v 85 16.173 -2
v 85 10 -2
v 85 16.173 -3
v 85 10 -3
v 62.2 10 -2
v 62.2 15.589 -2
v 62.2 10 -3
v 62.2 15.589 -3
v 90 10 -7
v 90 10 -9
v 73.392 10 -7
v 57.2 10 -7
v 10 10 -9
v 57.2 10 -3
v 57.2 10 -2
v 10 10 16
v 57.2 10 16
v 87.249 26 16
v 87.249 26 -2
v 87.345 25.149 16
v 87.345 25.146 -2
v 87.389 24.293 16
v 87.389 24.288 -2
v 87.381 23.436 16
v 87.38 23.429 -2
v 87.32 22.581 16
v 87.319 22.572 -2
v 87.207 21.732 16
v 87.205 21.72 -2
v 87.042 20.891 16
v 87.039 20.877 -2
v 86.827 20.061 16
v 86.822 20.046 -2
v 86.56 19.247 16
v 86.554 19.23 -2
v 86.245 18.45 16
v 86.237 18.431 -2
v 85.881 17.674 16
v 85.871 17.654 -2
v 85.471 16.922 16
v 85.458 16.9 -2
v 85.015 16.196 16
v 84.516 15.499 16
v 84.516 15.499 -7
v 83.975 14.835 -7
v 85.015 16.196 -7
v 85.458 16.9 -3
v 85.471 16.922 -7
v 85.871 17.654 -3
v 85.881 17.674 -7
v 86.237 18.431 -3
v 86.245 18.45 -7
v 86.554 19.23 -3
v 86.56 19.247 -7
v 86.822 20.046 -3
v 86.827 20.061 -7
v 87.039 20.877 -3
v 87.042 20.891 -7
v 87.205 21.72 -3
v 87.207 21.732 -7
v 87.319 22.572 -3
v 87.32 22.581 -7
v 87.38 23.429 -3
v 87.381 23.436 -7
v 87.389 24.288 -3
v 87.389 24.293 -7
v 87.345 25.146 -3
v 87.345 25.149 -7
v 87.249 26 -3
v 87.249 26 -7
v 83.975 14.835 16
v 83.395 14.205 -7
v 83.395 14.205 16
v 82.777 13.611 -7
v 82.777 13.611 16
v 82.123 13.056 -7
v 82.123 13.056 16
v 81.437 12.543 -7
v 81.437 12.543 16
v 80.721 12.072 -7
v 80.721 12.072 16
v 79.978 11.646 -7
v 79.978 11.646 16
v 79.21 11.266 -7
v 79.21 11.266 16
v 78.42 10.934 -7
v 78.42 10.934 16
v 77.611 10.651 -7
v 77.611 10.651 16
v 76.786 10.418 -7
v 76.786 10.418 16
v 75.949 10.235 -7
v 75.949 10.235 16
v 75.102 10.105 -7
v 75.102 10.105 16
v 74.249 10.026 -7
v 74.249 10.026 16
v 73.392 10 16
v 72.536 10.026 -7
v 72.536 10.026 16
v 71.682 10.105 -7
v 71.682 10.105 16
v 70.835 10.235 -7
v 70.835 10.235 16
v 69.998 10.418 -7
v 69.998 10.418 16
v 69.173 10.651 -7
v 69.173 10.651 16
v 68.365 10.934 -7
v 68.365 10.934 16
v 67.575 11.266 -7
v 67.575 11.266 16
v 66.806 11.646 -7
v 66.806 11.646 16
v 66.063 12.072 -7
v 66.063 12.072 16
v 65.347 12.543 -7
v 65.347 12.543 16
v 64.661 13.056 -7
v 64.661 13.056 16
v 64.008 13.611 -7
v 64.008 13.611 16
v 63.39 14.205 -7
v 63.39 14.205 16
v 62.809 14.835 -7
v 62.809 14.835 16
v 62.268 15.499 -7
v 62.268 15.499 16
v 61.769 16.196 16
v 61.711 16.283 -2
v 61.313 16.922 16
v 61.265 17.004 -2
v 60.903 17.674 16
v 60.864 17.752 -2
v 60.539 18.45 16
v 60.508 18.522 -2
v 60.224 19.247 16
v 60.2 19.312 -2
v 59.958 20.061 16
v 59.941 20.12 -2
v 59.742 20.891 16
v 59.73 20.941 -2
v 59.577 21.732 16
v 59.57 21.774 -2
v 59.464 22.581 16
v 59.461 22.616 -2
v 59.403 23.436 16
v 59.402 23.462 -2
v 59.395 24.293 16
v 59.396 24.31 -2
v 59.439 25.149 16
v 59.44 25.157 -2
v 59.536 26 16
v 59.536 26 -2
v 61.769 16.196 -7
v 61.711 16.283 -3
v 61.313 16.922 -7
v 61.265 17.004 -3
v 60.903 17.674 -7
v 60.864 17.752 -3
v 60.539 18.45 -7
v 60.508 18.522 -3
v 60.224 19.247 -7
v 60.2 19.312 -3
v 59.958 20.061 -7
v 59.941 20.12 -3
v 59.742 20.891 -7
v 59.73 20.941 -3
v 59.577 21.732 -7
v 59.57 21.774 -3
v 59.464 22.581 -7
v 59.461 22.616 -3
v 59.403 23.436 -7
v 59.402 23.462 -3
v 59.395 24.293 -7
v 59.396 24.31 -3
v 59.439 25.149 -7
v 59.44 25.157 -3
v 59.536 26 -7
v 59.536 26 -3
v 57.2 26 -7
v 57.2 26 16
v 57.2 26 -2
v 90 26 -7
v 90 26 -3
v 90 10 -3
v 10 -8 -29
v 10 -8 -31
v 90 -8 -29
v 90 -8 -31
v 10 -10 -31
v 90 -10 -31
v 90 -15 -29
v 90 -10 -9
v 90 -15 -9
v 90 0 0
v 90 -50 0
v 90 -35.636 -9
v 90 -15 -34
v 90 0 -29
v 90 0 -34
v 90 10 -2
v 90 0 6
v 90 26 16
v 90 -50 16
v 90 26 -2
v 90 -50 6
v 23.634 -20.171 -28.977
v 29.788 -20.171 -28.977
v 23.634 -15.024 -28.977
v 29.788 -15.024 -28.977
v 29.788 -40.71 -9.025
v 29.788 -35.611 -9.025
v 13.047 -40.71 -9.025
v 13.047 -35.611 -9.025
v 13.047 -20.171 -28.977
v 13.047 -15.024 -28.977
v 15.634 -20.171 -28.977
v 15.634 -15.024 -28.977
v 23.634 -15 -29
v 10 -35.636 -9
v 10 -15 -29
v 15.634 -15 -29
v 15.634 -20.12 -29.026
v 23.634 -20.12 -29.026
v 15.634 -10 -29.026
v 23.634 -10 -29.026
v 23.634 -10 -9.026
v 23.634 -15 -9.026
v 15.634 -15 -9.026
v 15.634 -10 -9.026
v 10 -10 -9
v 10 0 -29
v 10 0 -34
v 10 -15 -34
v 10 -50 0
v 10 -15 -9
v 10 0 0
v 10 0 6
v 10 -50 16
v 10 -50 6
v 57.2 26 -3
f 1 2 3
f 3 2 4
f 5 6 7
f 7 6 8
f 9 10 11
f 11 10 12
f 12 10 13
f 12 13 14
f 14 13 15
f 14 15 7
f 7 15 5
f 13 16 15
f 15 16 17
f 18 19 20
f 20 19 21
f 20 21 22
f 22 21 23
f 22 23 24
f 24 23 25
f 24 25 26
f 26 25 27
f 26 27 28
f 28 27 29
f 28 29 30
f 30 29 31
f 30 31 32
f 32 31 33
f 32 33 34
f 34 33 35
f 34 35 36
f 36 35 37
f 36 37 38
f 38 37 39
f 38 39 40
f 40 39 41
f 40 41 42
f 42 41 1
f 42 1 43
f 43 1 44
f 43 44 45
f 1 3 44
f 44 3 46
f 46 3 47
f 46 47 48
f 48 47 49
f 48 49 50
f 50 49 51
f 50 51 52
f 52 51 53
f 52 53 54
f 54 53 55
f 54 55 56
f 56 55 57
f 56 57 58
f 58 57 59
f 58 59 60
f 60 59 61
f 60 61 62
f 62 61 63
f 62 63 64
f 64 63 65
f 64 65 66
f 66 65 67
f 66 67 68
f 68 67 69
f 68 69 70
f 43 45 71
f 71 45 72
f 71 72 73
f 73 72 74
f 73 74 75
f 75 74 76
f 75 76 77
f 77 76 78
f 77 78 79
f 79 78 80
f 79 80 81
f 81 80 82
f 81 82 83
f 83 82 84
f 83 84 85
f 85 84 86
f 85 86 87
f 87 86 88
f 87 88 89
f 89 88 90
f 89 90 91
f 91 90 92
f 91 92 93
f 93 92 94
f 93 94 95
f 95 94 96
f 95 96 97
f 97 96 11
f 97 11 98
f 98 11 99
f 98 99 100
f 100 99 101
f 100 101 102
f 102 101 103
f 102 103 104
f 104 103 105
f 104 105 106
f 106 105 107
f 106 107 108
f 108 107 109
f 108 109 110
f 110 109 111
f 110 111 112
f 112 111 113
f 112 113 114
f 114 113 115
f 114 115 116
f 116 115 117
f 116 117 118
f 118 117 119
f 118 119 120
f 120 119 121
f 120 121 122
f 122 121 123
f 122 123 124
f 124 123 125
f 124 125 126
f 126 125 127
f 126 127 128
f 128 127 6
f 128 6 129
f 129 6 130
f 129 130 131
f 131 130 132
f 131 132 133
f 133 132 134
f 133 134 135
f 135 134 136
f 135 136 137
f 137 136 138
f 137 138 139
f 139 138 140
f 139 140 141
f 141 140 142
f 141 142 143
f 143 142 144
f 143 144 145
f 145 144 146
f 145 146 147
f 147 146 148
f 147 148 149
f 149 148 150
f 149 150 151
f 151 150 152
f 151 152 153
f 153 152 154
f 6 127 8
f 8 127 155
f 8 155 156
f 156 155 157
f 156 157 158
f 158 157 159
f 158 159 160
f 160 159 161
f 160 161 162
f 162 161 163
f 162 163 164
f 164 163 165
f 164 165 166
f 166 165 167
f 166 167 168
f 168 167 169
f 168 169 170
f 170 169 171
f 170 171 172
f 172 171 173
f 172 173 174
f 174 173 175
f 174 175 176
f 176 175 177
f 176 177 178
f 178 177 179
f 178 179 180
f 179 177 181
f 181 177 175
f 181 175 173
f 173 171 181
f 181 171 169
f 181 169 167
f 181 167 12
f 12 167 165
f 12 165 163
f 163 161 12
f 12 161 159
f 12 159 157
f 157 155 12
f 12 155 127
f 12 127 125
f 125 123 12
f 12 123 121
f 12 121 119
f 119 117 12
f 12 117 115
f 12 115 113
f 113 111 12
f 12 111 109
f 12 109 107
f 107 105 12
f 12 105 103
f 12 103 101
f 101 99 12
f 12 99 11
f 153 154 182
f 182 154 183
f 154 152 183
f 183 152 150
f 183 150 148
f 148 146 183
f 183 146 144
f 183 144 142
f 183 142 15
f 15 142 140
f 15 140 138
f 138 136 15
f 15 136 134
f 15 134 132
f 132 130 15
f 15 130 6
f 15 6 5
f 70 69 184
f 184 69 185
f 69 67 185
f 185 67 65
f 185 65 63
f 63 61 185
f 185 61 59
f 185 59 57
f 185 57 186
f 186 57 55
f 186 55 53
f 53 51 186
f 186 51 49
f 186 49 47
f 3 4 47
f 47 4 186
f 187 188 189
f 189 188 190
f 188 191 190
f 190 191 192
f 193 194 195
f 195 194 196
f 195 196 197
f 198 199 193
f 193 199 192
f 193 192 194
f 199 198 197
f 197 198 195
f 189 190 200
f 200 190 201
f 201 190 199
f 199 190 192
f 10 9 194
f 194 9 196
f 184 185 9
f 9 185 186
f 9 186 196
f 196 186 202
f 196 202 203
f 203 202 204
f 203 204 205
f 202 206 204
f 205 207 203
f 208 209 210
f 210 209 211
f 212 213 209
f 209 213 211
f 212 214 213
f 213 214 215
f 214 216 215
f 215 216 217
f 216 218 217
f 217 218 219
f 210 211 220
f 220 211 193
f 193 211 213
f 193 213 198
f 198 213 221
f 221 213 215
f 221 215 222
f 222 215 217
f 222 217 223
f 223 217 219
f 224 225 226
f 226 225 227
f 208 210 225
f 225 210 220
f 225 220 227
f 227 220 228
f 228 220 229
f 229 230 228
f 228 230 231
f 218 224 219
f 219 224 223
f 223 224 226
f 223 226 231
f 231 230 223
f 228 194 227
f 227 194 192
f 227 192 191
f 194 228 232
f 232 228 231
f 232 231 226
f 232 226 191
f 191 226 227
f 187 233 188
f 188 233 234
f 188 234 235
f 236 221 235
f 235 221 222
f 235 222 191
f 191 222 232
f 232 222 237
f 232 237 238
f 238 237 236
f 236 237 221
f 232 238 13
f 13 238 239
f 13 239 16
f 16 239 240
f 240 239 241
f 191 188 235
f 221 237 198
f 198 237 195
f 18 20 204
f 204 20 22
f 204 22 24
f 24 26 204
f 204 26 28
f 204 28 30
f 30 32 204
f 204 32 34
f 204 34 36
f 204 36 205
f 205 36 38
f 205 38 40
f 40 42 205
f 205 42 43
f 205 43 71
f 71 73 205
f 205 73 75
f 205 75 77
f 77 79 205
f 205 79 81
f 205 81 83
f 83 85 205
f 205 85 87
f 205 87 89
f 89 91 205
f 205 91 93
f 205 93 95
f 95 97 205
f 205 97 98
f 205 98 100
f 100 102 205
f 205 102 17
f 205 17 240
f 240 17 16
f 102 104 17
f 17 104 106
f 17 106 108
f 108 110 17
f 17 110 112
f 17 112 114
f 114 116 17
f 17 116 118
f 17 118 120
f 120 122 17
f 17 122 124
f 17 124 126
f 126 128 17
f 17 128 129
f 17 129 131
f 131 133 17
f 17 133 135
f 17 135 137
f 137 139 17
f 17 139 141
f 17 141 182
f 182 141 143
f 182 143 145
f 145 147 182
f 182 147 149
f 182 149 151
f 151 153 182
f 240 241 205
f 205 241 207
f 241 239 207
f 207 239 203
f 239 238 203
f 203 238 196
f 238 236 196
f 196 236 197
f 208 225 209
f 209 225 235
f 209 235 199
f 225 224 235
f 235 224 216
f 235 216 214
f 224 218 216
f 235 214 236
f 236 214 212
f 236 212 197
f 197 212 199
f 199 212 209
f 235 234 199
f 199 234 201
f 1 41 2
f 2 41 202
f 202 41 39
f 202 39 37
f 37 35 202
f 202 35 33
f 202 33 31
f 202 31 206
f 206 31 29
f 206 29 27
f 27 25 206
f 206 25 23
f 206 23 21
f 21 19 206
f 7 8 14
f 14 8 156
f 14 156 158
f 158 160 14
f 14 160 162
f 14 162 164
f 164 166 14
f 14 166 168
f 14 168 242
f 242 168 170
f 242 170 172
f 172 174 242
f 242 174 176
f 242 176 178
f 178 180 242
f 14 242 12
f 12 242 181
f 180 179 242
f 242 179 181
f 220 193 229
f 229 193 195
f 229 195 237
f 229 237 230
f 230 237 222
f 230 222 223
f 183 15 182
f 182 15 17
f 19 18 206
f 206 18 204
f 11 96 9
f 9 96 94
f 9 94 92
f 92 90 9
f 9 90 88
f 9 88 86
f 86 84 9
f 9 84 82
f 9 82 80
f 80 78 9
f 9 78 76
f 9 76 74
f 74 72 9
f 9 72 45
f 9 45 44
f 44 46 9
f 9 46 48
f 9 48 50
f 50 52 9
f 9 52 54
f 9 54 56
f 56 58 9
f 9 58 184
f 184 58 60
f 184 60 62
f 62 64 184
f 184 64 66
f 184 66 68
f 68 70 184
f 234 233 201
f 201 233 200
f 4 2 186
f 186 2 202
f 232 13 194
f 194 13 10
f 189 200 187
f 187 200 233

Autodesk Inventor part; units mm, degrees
ref_plane "YZ Plane" through (0, 0, 0) normal (1, 0, 0) x (0, 1, 0)
ref_plane "XZ Plane" through (0, 0, 0) normal (0, 1, 0) x (-1, 0, 0)
ref_plane "XY Plane" through (0, 0, 0) normal (0, 0, 1) x (1, 0, 0)
sketch "Base" plane through (0, 0, 0) normal (1, 0, 0) x (0, 1, 0)
  line L0 (0, 0) -> (0, 6)
  line L1 (0, 6) -> (-50, 6)
  line L2 (-50, 6) -> (-50, 16)
  line L3 (-50, 16) -> (10, 16)
  line L4 (10, -9) -> (-10, -9)
  line L5 (-10, -9) -> (-10, -29)
  line L6 (-10, -29) -> (0, -29)
  line L7 (0, -29) -> (0, -34)
  line L8 (0, -34) -> (-15, -34)
  line L9 (-15, -34) -> (-50, 0)
  line L10 (-50, 0) -> (0, 0)
  line L11 (10, 16) -> (10, -9)
  dimension "d0" = 6
  dimension "d1" = 50
  dimension "d2" = 10
  dimension "d3" = 60
  dimension "d4" = 25
  dimension "d5" = 20
  dimension "d6" = 20
  dimension "d7" = 10
  dimension "d8" = 5
  dimension "d9" = 15
sketch "Mount" plane through (0, 0, 0) normal (1, 0, 0) x (0, 1, 0)
  line L0 (10, 16) -> (26, 16)
  line L1 (26, 16) -> (26, -7)
  line L2 (26, -7) -> (10, -7)
  line L3 (10, -7) -> (10, 16)
  point P0 (0, 0)
  dimension "d13" = 16
  dimension "d14" = 23
extrude "Extrusion1" add sketch "Base" along normal blind 90
extrude "Extrusion2" add sketch "Mount" along normal blind 90
sketch "Sketch4" plane through (0, 10, -7) normal (0, 0, -1) x (-1, 0, 0)
  line L0 (0, 0) -> (0, 16) projected
  line L1 (0, 16) -> (-90, 16) projected
  line L2 (-90, 0) -> (-90, 16) projected
  line L3 (0, 0) -> (-90, 0) projected
  line L4 (-90, 17.3769) -> (-85, 17.3769)
  line L5 (-85, 17.3769) -> (-85, 0)
  line L6 (0, 0) -> (-90, 0) projected
  line L7 (-85, 0) -> (-62.2, 0)
  line L8 (-62.2, 0) -> (-62.2, 17.3769)
  line L9 (-62.2, 17.3769) -> (-57.2, 17.3769)
  line L10 (-57.2, 17.3769) -> (-57.2, 0)
  line L11 (-90, 17.3769) -> (-90, 25.7938)
  line L12 (-90, 25.7938) -> (16.0885, 26.6461)
  line L13 (16.0885, 26.6461) -> (17.0474, 0)
  line L14 (17.0474, 0) -> (-57.2, 0)
  point P0 (0, -10)
  dimension "d19" = 5
  dimension "d20" = 22.8
  dimension "d21" = 5
extrude "Extrusion3" cut sketch "Sketch4" against normal blind 90 contours L3 L10 L1 L0 | L0 L1 L10 L9 L8 L5 L4 L11 L12 L13 L14 | L3 L5 L1 L8
sketch "Sketch7" plane through (90, 0, 0) normal (1, 0, 0) x (0, 0, -1)
  line L0 (29, 0) -> (29, -10) projected
  line L1 (29, -10) -> (9, -10) projected
  line L2 (9, -10) -> (9, 10) projected
  line L3 (9, 10) -> (7, 10) projected
  line L4 (7, 10) -> (7, 26) projected
  line L5 (7, 26) -> (-16, 26) projected
  line L6 (-16, 26) -> (-16, -50) projected
  line L7 (-16, -50) -> (-6, -50) projected
  line L8 (-6, -50) -> (-6, 0) projected
  line L9 (-6, 0) -> (0, 0) projected
  line L10 (0, 0) -> (0, -50) projected
  line L11 (0, -50) -> (34, -15) projected
  line L12 (34, -15) -> (34, 0) projected
  line L13 (34, 0) -> (29, 0) projected
  line L14 (9, -15) -> (29, -15)
  line L15 (29, -15) -> (9, -35.6361)
  line L16 (9, -35.6361) -> (9, -15)
extrude "Extrusion5" cut sketch "Sketch7" against normal blind 90 contours L14 L15 L16
sketch "Sketch8" plane through (90, 0, 0) normal (1, 0, 0) x (0, 0, -1)
  line L0 (29, -15) -> (9, -35.6361) projected
  line L1 (9, -35.6361) -> (9, -15) projected
  line L2 (9, -15) -> (29, -15) projected
  line L3 (29, 0) -> (29, -10) projected
  line L4 (29, -10) -> (9, -10) projected
  line L5 (9, -10) -> (9, 10) projected
  line L6 (9, 10) -> (7, 10) projected
  line L7 (7, 10) -> (7, 26) projected
  line L8 (7, 26) -> (-16, 26) projected
  line L9 (-16, 26) -> (-16, -50) projected
  line L10 (-16, -50) -> (-6, -50) projected
  line L11 (-6, -50) -> (-6, 0) projected
  line L12 (-6, 0) -> (0, 0) projected
  line L13 (0, 0) -> (0, -50) projected
  line L14 (0, -50) -> (34, -15) projected
  line L15 (34, -15) -> (34, 0) projected
  line L16 (34, 0) -> (29, 0) projected
  line L17 (2, 10) -> (3, 10)
  line L18 (2, 10) -> (2, 28)
  line L19 (2, 28) -> (3, 28)
  line L20 (3, 28) -> (3, 10)
  point P0 (-16, 10)
  dimension "d39" = 18
  dimension "d40" = 1
  dimension "d69" = 18
extrude "Extrusion6" cut sketch "Sketch8" against normal blind 90 contours L20 L17 L18 L8 | L8 L18 L19 L20
sketch "Sketch9" plane through (0, -15, -34) normal (0, 0, -1) x (-1, 0, 0)
  line L0 (0, -35) -> (-90, -35) projected
  line L1 (0, -35) -> (-10, -35)
  line L2 (-10, -35) -> (-10, 26.7876)
  line L3 (-10, 26.7876) -> (0, 26.7876)
  line L4 (0, 26.7876) -> (0, -35)
  point P0 (0, 15)
  dimension "d44" = 10
extrude "Extrusion7" cut sketch "Sketch9" against normal blind 90
sketch "Sketch10" plane through (90, -10, -9) normal (0, 1, 0) x (1, 0, 0)
  line L0 (-74.3662, 20.0264) -> (-66.3662, 20.0264)
  line L1 (-66.3662, 20.0264) -> (-66.3662, 0.0264)
  line L2 (-66.3662, 0.0264) -> (-74.3662, 0.0264)
  line L3 (-74.3662, 0.0264) -> (-74.3662, 20.0264)
  point P0 (-90, -9)
  dimension "d47" = 8
  dimension "d58" = 20
extrude "Extrusion8" cut sketch "Sketch10" against normal blind 90
sketch "Sketch11" plane through (90, -50, 6) normal (0, -1, 0) x (1, 0, 0)
  line L0 (-74.3662, -35.0264) -> (-74.3662, -15.0264) projected
  line L1 (-74.3662, -15.0264) -> (-66.3662, -15.0264) projected
  line L2 (-66.3662, -15.0264) -> (-66.3662, -35.0264) projected
  line L3 (-66.3662, -35.0264) -> (-74.3662, -35.0264) projected
  line L4 (-80, -6) -> (-80, -40) projected
  line L5 (-80, -40) -> (0, -40) projected
  line L6 (0, -6) -> (0, -40) projected
  line L7 (-80, -6) -> (0, -6) projected
  line L8 (-60.2122, -34.9767) -> (-76.9534, -34.9767)
  line L9 (-76.9534, -34.9767) -> (-76.9534, -15.0247)
  line L10 (-76.9534, -15.0247) -> (-60.2122, -15.0247)
  line L11 (-60.2122, -15.0247) -> (-60.2122, -34.9767)
  point P0 (-90, -6)
extrude "Extrusion9" cut sketch "Sketch11" against normal blind 35 contours L8 L9 L10 L0 | L2 L10 L11 L8
sketch "Sketch12" plane through (90, 10, -7) normal (0, 0, -1) x (-1, 0, 0)
  line L0 (5, 0) -> (5, 16) projected
  line L1 (5, 16) -> (0, 16) projected
  line L2 (0, 0) -> (0, 16) projected
  line L3 (5, 0) -> (0, 0) projected
  line L4 (27.8, 16) -> (27.8, 0) projected
  line L5 (32.8, 0) -> (27.8, 0) projected
  line L6 (32.8, 0) -> (32.8, 16) projected
  line L7 (32.8, 16) -> (27.8, 16) projected
  line L8 (2.5, 7) -> (16.4, 7)
  line L9 (80, 0) -> (0, 0) projected
  point P0 (90, -10)
  point P1 (30.282, 6.0006)
  dimension "d52" = 27.8
  dimension "d53" = 13.9
  dimension "d70" = 7
sketch "Sketch13" plane through (90, 0, 0) normal (1, 0, 0) x (0, 0, -1)
  line L0 (2, 10) -> (2, 26) projected
  line L1 (2, 26) -> (-16, 26) projected
  line L2 (-16, 26) -> (-16, -50) projected
  line L3 (-16, -50) -> (-6, -50) projected
  line L4 (-6, -50) -> (-6, 0) projected
  line L5 (-6, 0) -> (0, 0) projected
  line L6 (0, 0) -> (0, -50) projected
  line L7 (0, -50) -> (34, -15) projected
  line L8 (34, -15) -> (34, 0) projected
  line L9 (34, 0) -> (29, 0) projected
  line L10 (29, 0) -> (29, -10) projected
  line L11 (29, -10) -> (9, -10) projected
  line L12 (9, -10) -> (9, 10) projected
  line L13 (9, 10) -> (7, 10) projected
  line L14 (7, 10) -> (7, 26) projected
  line L15 (3, 26) -> (3, 10) projected
  line L16 (3, 10) -> (2, 10) projected
  line L17 (29, -15) -> (9, -35.6361) projected
  line L18 (9, -35.6361) -> (9, -15) projected
  line L19 (9, -15) -> (29, -15) projected
  line L20 (29, -10) -> (9, -10) projected
  line L21 (29, -10) -> (31, -10)
  line L22 (31, -10) -> (31, -8)
  line L23 (31, -8) -> (29, -8)
  line L24 (29, 0) -> (29, -10) projected
  line L25 (29, -10) -> (29, -8)
  line L26 (7, 26) -> (3, 26) projected
  dimension "d54" = 2
  dimension "d55" = 2
extrude "Extrusion10" cut sketch "Sketch13" against normal through all contours L10 L23 L22 L21
sketch "Sketch15" plane through (90, 10, -7) normal (0, 0, -1) x (-1, 0, 0)
  line L0 (5, 0) -> (5, 16) projected
  line L1 (5, 16) -> (0, 16) projected
  line L2 (0, 0) -> (0, 16) projected
  line L3 (5, 0) -> (0, 0) projected
  line L4 (27.8, 16) -> (27.8, 0) projected
  line L5 (32.8, 0) -> (27.8, 0) projected
  line L6 (32.8, 0) -> (32.8, 16) projected
  line L7 (32.8, 16) -> (27.8, 16) projected
  line L8 (80, 0) -> (0, 0) projected
  circle A0 centre (16.6079, 14) radius 14 construction
  line L9 (27.8, 0) -> (27.8, 16) projected
  line L10 (27.8, 5.5895) -> (27.8, 16)
  line L11 (27.8, 16) -> (30.4643, 16)
  line L12 (32.8, 16) -> (27.8, 16) projected
  arc A1 (27.8, 5.5895) -> (30.4643, 16) centre (16.6079, 14) ccw
  line L13 (5, 16) -> (0, 16) projected
  line L14 (5, 16) -> (5, 0) projected
  arc A2 (2.7515, 16) -> (5, 6.1733) centre (16.6079, 14) ccw
  line L15 (5, 16) -> (2.7515, 16)
  line L16 (5, 6.1733) -> (5, 16)
  point P0 (90, -10)
  point P1 (27.8, 5.5895)
  point P2 (30.4643, 16)
  point P3 (2.7515, 16)
  point P4 (5, 6.1733)
  dimension "d63" = 14
  dimension "d64" = 28
extrude "Extrusion12" cut sketch "Sketch15" against normal up to surface (23 mm away) contours A2 L1 L0 | L4 L7 A1
sketch "Sketch16" plane through (90, 10, -7) normal (0, 0, -1) x (-1, 0, 0)
  circle A0 centre (16.6079, 14) radius 14 construction
  line L0 (5, 0) -> (5, 6.1733) projected
  line L1 (5, 6.1733) -> (5, 0)
  line L2 (5, 0) -> (27.7766, 0)
  line L3 (80, 0) -> (0, 0) projected
  line L4 (27.8, 0) -> (27.8, 5.5895) projected
  line L5 (27.8, 5.5895) -> (27.8, 0)
  line L6 (5, 0) -> (0, 0) projected
  line L7 (27.8, 0) -> (5, 0)
  line L8 (5, 0) -> (5, 6.1733)
  line L9 (32.8, 0) -> (27.8, 0) projected
  line L10 (5, 0) -> (27.8, 0)
  arc A1 (5, 6.1733) -> (27.8, 5.5895) centre (16.6079, 14) ccw
  point P0 (90, -10)
  point P1 (16.6079, 0)
extrude "Extrusion13" add sketch "Sketch16" against normal up to surface (23 mm away)
properties part number "Base Part"
